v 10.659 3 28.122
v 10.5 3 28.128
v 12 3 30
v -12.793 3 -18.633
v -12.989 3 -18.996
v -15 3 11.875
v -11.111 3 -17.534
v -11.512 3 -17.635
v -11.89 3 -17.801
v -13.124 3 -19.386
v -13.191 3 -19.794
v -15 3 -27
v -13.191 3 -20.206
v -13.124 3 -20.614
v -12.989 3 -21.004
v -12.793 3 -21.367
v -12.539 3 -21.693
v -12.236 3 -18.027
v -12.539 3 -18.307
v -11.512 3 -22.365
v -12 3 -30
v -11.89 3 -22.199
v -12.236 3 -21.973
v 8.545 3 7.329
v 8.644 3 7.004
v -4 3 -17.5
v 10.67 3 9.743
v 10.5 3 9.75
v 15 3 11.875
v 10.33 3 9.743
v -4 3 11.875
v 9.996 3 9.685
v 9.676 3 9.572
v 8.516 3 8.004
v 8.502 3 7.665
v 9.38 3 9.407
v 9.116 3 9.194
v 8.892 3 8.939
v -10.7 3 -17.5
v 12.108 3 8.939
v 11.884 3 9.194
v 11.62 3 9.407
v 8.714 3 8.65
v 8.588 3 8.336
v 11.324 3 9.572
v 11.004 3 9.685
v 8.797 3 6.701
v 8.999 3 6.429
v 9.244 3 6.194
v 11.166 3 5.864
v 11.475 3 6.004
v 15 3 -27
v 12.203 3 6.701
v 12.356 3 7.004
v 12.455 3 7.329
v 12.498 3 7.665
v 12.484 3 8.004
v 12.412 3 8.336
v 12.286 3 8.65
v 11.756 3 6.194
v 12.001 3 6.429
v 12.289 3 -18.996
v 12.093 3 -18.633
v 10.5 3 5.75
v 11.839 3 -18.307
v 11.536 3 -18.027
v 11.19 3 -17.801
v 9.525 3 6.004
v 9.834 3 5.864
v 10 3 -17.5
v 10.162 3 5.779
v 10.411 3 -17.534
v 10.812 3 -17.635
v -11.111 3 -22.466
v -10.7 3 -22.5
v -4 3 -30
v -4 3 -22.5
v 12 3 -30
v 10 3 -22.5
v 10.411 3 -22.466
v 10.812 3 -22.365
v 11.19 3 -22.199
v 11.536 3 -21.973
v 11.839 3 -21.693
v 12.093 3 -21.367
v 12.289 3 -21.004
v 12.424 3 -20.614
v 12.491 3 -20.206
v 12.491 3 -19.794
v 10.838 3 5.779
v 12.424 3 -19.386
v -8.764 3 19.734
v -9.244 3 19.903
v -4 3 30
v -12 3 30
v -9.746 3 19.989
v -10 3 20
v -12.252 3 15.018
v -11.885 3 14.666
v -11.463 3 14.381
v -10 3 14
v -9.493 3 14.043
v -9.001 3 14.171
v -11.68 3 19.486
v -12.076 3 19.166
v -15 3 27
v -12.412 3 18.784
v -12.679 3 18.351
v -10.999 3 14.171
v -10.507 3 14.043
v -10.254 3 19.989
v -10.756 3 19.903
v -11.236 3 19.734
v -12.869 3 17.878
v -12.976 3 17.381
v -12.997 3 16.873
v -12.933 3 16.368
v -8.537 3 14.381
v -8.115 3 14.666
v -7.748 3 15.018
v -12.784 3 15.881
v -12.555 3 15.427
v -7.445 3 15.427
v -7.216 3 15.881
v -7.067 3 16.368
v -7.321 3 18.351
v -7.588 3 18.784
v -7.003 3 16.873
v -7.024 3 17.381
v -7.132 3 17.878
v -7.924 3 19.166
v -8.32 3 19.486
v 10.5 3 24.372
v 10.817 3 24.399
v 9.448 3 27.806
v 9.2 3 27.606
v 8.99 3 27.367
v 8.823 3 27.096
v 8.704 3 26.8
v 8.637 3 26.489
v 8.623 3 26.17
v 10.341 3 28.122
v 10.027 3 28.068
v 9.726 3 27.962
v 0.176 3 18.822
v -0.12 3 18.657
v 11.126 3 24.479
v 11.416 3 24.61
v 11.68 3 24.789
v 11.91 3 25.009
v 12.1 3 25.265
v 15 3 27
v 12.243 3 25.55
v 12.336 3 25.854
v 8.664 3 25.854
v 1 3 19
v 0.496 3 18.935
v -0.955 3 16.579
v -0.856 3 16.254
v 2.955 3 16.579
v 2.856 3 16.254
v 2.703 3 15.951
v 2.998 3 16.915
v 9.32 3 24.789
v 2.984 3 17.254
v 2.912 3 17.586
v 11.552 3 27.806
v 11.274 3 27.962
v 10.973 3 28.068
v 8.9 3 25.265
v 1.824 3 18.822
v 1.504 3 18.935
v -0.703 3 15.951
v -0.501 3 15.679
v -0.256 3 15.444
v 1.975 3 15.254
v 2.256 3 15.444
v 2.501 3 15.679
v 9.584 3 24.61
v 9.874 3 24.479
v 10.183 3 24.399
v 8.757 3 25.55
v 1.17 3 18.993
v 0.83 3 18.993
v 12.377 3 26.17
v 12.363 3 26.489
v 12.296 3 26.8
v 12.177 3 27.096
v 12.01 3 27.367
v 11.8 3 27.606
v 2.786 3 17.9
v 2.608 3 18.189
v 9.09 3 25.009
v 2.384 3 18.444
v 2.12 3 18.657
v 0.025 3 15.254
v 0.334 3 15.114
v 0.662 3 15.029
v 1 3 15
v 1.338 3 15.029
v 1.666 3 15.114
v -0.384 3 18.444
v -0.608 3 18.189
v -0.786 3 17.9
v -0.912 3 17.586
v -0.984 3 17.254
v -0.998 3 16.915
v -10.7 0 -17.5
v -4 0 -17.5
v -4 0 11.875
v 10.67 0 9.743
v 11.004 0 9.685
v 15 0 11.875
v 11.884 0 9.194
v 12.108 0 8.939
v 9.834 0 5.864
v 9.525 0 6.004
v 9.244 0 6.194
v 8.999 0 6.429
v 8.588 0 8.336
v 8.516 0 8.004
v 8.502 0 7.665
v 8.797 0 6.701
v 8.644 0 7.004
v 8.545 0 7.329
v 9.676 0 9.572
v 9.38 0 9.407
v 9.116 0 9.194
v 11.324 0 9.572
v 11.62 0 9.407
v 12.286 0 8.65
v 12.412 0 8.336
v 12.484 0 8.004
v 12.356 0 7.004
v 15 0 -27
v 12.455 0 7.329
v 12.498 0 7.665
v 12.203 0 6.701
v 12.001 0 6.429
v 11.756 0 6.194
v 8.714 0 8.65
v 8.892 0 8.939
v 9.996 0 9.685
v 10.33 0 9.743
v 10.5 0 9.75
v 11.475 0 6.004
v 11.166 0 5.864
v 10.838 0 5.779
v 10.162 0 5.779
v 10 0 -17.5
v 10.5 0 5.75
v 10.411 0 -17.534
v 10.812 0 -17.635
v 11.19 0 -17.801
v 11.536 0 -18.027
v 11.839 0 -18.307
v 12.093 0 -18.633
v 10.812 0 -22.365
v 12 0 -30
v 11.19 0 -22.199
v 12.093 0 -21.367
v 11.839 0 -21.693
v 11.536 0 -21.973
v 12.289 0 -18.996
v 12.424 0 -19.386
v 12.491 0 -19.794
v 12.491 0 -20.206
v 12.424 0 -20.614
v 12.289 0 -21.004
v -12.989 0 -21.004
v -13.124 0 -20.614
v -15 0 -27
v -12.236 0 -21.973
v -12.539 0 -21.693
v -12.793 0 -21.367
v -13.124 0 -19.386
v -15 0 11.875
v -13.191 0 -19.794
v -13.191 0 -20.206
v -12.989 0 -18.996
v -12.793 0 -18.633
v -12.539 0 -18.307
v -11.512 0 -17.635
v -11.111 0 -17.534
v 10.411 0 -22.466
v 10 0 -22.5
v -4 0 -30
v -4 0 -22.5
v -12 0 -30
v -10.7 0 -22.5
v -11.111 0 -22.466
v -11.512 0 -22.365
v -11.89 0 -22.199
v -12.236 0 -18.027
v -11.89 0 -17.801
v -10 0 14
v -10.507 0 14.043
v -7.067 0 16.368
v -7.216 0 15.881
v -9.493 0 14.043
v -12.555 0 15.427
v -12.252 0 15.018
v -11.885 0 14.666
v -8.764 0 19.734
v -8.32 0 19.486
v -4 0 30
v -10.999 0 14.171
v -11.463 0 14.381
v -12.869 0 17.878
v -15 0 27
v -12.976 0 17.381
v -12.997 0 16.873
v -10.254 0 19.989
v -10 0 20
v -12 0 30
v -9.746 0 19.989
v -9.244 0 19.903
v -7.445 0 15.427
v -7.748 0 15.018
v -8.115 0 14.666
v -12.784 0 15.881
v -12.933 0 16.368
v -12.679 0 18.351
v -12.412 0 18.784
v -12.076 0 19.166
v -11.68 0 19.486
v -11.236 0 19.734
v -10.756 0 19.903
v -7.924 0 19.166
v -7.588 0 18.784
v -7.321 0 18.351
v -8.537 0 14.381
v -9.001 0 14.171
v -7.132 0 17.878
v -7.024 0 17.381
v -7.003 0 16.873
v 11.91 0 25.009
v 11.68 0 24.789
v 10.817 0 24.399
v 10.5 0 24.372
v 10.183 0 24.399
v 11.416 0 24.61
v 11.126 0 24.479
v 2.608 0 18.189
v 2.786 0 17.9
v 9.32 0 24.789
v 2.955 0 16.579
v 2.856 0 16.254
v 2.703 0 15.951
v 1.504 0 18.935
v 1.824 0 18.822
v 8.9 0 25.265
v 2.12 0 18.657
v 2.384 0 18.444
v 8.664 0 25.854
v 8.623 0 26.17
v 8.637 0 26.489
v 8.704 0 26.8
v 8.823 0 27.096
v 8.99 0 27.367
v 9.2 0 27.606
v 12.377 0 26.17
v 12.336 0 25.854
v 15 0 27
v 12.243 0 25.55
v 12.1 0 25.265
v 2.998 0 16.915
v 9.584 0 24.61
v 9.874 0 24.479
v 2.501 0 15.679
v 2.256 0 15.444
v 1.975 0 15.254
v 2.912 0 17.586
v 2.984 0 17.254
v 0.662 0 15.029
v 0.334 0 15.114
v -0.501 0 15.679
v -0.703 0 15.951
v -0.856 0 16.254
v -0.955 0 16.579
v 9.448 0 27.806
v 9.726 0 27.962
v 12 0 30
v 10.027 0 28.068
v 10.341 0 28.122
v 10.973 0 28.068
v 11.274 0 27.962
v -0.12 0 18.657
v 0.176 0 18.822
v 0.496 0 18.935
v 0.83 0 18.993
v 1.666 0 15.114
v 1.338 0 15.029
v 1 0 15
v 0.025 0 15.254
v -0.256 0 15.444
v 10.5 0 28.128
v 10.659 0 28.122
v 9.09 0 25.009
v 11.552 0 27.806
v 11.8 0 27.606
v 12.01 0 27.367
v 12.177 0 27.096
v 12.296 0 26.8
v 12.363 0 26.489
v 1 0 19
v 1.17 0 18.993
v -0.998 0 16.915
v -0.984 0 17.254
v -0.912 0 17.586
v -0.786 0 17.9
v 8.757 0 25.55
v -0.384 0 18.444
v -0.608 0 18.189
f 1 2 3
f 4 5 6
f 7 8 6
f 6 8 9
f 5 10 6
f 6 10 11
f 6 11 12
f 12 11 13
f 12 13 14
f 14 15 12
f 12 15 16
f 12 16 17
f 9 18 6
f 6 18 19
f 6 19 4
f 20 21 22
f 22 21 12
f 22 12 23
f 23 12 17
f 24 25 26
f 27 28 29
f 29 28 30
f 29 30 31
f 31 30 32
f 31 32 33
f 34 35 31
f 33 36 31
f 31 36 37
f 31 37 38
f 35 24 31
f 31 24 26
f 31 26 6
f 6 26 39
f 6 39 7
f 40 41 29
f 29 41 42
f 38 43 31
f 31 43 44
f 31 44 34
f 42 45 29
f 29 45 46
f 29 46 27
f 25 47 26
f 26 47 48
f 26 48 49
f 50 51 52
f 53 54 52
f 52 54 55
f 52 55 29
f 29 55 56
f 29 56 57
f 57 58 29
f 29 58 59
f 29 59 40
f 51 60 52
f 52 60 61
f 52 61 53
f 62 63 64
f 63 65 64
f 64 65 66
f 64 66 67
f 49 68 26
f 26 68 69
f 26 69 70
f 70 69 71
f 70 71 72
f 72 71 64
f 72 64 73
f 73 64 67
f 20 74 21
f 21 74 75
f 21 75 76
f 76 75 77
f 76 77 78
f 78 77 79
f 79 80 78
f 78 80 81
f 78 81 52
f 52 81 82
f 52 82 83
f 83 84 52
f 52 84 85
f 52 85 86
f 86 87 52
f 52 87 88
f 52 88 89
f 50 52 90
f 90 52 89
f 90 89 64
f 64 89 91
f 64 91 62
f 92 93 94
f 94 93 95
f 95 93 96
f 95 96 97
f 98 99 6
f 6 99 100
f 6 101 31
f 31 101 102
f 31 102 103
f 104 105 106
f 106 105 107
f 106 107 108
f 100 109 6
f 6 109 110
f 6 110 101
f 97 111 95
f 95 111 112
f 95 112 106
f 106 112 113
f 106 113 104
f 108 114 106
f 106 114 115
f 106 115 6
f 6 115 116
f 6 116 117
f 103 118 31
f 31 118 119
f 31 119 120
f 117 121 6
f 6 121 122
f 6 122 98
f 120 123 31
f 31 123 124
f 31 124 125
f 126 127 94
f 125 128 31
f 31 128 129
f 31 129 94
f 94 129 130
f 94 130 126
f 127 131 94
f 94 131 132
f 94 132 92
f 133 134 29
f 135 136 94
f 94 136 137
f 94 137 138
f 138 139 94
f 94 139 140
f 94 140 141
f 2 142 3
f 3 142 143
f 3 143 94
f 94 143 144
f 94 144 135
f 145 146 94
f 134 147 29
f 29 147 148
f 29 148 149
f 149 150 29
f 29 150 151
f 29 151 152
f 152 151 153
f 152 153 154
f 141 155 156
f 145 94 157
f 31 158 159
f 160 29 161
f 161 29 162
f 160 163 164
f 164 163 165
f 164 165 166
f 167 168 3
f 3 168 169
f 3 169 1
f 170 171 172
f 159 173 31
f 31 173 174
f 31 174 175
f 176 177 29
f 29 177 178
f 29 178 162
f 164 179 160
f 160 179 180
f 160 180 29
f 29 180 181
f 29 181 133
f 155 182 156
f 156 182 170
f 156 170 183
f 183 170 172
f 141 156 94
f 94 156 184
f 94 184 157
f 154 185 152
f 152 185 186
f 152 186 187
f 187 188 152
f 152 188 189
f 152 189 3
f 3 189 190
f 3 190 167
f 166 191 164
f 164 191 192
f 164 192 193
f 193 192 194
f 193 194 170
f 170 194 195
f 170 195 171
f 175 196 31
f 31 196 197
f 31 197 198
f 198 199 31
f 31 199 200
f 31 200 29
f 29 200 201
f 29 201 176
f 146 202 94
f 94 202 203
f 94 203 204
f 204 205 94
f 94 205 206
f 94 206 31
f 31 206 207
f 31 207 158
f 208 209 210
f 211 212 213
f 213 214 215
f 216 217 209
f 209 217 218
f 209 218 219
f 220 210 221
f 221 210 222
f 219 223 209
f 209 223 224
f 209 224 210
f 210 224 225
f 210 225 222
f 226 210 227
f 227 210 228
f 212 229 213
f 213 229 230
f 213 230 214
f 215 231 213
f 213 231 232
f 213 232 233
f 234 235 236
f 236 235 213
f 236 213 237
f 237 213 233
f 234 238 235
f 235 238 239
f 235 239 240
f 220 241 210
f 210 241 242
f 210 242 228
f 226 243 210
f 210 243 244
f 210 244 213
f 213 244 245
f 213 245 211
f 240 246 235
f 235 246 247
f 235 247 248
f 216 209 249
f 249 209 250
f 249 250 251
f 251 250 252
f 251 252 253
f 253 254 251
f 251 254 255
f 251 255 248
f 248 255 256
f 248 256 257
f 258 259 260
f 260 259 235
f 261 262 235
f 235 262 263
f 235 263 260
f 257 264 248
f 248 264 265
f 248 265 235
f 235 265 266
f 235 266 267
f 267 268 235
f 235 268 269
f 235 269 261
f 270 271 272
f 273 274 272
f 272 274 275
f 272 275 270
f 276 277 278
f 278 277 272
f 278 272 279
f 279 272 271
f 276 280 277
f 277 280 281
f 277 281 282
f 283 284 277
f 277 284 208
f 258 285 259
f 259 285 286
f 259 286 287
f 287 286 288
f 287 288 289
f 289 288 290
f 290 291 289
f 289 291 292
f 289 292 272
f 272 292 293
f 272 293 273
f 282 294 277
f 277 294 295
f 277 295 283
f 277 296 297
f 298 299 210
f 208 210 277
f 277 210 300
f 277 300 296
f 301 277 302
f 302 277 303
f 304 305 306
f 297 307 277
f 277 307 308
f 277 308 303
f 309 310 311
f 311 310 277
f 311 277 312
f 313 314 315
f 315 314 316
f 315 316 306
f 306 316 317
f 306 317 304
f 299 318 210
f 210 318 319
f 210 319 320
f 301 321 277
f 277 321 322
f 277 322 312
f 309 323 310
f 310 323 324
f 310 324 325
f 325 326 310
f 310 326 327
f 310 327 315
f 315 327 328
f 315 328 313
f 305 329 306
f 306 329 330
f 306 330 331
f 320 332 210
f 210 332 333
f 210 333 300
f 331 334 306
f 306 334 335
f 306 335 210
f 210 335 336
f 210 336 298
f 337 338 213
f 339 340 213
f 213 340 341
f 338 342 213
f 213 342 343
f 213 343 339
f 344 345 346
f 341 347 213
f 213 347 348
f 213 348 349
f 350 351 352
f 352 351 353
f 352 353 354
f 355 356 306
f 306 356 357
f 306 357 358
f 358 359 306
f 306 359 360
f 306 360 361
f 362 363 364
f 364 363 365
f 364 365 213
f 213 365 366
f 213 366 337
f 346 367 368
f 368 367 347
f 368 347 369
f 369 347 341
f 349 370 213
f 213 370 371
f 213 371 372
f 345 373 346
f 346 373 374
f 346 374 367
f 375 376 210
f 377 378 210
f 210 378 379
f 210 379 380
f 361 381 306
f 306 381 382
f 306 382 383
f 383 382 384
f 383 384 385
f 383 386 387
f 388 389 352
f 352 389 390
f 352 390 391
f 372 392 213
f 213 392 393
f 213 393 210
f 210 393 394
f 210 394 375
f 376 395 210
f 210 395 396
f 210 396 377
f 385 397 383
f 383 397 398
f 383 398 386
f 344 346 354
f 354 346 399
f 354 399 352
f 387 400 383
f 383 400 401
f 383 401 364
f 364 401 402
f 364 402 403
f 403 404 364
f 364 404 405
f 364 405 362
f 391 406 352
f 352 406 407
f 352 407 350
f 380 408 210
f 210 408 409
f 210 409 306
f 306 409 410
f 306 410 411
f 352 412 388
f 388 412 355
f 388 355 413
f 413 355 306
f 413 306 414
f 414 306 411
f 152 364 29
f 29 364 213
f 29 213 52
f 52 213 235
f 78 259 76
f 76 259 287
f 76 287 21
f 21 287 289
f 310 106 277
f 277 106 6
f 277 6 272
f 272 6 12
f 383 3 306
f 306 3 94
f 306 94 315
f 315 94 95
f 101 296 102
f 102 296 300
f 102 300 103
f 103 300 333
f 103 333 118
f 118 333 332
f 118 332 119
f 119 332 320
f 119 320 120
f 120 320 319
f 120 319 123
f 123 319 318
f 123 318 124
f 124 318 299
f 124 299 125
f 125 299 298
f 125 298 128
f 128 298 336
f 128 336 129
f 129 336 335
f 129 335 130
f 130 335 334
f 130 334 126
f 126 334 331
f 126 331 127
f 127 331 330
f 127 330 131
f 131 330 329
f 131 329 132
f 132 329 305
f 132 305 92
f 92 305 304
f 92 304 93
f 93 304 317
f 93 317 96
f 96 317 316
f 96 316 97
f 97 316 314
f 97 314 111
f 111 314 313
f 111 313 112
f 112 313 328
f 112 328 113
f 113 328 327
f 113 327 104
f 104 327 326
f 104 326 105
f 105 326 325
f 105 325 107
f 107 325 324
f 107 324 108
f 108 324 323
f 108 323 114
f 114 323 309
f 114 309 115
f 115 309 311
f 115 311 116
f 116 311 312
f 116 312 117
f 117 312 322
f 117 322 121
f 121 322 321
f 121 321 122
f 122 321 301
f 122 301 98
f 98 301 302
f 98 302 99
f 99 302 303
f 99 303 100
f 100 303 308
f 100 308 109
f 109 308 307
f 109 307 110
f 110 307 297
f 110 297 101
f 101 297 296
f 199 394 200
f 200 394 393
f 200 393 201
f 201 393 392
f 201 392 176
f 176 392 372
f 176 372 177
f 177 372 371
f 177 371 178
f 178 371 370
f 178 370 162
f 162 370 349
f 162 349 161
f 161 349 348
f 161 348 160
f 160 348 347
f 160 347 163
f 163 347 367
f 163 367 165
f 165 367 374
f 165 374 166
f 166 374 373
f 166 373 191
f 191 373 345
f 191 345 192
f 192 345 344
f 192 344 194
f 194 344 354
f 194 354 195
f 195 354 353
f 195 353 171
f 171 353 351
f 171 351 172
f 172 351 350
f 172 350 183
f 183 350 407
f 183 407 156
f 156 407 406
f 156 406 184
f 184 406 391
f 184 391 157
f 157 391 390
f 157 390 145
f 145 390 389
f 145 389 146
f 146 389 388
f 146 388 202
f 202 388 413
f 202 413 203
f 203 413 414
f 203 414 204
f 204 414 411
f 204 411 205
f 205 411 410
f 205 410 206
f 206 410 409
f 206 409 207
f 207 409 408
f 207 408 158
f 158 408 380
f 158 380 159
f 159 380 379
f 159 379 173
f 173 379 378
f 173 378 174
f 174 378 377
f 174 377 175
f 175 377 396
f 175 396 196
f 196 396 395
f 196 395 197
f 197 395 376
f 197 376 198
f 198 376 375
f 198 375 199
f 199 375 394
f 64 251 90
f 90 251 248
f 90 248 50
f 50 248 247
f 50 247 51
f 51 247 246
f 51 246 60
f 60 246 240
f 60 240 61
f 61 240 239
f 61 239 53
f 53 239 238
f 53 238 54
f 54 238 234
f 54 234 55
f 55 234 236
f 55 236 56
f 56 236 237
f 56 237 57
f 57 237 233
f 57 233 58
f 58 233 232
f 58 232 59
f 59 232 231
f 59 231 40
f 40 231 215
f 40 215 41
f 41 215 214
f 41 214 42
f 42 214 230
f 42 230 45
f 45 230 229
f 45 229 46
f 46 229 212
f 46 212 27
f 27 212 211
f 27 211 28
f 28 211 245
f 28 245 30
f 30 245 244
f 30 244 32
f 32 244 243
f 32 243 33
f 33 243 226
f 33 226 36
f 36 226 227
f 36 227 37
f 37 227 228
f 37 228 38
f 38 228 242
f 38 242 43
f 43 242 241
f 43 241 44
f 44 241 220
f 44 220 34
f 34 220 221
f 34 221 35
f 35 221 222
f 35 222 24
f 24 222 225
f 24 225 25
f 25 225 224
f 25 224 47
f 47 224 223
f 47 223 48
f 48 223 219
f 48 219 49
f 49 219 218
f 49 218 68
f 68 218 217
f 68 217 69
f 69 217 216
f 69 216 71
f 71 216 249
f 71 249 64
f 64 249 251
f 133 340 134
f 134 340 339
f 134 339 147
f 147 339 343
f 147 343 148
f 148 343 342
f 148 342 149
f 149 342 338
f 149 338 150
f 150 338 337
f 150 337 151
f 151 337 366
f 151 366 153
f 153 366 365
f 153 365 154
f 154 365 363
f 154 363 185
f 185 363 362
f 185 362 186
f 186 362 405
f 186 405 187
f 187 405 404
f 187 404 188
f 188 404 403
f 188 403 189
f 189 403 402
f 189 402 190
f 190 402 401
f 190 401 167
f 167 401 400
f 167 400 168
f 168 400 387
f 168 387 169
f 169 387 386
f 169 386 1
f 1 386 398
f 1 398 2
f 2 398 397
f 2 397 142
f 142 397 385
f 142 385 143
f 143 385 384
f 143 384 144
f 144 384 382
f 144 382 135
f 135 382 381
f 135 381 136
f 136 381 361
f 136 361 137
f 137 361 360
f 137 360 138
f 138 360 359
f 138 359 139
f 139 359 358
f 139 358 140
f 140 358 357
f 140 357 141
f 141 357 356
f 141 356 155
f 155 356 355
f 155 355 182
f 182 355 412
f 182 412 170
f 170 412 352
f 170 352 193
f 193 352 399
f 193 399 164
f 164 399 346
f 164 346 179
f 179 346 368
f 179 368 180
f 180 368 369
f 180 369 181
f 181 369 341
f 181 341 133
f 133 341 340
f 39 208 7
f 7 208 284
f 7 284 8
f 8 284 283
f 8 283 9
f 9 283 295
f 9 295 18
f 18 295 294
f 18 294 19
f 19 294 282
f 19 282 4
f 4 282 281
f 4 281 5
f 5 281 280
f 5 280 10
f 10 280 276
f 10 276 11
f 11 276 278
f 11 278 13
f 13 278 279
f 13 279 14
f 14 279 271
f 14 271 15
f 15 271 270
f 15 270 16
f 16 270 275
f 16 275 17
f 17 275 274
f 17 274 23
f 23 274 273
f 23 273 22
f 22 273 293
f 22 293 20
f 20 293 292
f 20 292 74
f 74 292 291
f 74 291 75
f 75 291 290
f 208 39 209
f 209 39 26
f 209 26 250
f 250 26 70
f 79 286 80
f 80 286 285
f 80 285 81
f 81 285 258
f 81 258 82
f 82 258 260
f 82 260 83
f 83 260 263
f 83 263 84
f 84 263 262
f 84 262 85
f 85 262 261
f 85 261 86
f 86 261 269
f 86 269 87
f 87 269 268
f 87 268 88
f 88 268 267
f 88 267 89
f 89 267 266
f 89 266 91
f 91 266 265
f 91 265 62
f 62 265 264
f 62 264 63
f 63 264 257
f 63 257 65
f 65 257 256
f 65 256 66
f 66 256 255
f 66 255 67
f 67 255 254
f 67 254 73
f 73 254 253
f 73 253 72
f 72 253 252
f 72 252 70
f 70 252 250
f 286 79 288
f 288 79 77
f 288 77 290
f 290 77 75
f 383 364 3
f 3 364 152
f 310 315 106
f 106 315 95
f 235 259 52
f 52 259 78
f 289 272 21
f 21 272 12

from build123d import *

# Parameters (mm, degrees)
CROQUIS1_W              = 30
CROQUIS1_H              = 60
CROQUIS1_R              = 3
CROQUIS1_R_2            = 2
CROQUIS1_R_3            = 1.878445215
SALIENTE_EXTRUIR1_DEPTH = 3
CHAFL_N1_SIZE           = 3


with BuildPart() as part:
    # Croquis1 → Saliente-Extruir1 (new body)
    with BuildSketch(Plane(origin=(0, 0, 0), x_dir=(1, 0, 0), z_dir=(0, 1, 0))):
        Rectangle(CROQUIS1_W, CROQUIS1_H)
        with Locations(Location((-10, -17, 0), (0, 0, 270))):
            Circle(CROQUIS1_R, mode=Mode.SUBTRACT)
        with Locations(Location((1, -17, 0), (0, 0, 270))):
            Circle(CROQUIS1_R_2, mode=Mode.SUBTRACT)
        with Locations(Location((10.5, -7.75, 0), (0, 0, 270))):
            Circle(CROQUIS1_R_2, mode=Mode.SUBTRACT)
        with Locations(Location((10.5, -26.25, 0), (0, 0, 270))):
            Circle(CROQUIS1_R_3, mode=Mode.SUBTRACT)
        with BuildLine():
            Line((-10.7, 17.5), (10, 17.5))
            ThreePointArc((10, 17.5), (12.5, 20), (10, 22.5))
            Line((10, 22.5), (-10.7, 22.5))
            ThreePointArc((-10.7, 22.5), (-13.2, 20), (-10.7, 17.5))
        make_face(mode=Mode.SUBTRACT)
    extrude(amount=SALIENTE_EXTRUIR1_DEPTH)

    # Chaflán1
    chafl_n1_edges = [part.edges().sort_by_distance(p)[0] for p in [
        (15, 1.5, 30),
        (-15, 1.5, 30),
        (-15, 1.5, -30),
        (15, 1.5, -30),
    ]]
    chamfer(chafl_n1_edges, length=CHAFL_N1_SIZE)


solid = part.part
